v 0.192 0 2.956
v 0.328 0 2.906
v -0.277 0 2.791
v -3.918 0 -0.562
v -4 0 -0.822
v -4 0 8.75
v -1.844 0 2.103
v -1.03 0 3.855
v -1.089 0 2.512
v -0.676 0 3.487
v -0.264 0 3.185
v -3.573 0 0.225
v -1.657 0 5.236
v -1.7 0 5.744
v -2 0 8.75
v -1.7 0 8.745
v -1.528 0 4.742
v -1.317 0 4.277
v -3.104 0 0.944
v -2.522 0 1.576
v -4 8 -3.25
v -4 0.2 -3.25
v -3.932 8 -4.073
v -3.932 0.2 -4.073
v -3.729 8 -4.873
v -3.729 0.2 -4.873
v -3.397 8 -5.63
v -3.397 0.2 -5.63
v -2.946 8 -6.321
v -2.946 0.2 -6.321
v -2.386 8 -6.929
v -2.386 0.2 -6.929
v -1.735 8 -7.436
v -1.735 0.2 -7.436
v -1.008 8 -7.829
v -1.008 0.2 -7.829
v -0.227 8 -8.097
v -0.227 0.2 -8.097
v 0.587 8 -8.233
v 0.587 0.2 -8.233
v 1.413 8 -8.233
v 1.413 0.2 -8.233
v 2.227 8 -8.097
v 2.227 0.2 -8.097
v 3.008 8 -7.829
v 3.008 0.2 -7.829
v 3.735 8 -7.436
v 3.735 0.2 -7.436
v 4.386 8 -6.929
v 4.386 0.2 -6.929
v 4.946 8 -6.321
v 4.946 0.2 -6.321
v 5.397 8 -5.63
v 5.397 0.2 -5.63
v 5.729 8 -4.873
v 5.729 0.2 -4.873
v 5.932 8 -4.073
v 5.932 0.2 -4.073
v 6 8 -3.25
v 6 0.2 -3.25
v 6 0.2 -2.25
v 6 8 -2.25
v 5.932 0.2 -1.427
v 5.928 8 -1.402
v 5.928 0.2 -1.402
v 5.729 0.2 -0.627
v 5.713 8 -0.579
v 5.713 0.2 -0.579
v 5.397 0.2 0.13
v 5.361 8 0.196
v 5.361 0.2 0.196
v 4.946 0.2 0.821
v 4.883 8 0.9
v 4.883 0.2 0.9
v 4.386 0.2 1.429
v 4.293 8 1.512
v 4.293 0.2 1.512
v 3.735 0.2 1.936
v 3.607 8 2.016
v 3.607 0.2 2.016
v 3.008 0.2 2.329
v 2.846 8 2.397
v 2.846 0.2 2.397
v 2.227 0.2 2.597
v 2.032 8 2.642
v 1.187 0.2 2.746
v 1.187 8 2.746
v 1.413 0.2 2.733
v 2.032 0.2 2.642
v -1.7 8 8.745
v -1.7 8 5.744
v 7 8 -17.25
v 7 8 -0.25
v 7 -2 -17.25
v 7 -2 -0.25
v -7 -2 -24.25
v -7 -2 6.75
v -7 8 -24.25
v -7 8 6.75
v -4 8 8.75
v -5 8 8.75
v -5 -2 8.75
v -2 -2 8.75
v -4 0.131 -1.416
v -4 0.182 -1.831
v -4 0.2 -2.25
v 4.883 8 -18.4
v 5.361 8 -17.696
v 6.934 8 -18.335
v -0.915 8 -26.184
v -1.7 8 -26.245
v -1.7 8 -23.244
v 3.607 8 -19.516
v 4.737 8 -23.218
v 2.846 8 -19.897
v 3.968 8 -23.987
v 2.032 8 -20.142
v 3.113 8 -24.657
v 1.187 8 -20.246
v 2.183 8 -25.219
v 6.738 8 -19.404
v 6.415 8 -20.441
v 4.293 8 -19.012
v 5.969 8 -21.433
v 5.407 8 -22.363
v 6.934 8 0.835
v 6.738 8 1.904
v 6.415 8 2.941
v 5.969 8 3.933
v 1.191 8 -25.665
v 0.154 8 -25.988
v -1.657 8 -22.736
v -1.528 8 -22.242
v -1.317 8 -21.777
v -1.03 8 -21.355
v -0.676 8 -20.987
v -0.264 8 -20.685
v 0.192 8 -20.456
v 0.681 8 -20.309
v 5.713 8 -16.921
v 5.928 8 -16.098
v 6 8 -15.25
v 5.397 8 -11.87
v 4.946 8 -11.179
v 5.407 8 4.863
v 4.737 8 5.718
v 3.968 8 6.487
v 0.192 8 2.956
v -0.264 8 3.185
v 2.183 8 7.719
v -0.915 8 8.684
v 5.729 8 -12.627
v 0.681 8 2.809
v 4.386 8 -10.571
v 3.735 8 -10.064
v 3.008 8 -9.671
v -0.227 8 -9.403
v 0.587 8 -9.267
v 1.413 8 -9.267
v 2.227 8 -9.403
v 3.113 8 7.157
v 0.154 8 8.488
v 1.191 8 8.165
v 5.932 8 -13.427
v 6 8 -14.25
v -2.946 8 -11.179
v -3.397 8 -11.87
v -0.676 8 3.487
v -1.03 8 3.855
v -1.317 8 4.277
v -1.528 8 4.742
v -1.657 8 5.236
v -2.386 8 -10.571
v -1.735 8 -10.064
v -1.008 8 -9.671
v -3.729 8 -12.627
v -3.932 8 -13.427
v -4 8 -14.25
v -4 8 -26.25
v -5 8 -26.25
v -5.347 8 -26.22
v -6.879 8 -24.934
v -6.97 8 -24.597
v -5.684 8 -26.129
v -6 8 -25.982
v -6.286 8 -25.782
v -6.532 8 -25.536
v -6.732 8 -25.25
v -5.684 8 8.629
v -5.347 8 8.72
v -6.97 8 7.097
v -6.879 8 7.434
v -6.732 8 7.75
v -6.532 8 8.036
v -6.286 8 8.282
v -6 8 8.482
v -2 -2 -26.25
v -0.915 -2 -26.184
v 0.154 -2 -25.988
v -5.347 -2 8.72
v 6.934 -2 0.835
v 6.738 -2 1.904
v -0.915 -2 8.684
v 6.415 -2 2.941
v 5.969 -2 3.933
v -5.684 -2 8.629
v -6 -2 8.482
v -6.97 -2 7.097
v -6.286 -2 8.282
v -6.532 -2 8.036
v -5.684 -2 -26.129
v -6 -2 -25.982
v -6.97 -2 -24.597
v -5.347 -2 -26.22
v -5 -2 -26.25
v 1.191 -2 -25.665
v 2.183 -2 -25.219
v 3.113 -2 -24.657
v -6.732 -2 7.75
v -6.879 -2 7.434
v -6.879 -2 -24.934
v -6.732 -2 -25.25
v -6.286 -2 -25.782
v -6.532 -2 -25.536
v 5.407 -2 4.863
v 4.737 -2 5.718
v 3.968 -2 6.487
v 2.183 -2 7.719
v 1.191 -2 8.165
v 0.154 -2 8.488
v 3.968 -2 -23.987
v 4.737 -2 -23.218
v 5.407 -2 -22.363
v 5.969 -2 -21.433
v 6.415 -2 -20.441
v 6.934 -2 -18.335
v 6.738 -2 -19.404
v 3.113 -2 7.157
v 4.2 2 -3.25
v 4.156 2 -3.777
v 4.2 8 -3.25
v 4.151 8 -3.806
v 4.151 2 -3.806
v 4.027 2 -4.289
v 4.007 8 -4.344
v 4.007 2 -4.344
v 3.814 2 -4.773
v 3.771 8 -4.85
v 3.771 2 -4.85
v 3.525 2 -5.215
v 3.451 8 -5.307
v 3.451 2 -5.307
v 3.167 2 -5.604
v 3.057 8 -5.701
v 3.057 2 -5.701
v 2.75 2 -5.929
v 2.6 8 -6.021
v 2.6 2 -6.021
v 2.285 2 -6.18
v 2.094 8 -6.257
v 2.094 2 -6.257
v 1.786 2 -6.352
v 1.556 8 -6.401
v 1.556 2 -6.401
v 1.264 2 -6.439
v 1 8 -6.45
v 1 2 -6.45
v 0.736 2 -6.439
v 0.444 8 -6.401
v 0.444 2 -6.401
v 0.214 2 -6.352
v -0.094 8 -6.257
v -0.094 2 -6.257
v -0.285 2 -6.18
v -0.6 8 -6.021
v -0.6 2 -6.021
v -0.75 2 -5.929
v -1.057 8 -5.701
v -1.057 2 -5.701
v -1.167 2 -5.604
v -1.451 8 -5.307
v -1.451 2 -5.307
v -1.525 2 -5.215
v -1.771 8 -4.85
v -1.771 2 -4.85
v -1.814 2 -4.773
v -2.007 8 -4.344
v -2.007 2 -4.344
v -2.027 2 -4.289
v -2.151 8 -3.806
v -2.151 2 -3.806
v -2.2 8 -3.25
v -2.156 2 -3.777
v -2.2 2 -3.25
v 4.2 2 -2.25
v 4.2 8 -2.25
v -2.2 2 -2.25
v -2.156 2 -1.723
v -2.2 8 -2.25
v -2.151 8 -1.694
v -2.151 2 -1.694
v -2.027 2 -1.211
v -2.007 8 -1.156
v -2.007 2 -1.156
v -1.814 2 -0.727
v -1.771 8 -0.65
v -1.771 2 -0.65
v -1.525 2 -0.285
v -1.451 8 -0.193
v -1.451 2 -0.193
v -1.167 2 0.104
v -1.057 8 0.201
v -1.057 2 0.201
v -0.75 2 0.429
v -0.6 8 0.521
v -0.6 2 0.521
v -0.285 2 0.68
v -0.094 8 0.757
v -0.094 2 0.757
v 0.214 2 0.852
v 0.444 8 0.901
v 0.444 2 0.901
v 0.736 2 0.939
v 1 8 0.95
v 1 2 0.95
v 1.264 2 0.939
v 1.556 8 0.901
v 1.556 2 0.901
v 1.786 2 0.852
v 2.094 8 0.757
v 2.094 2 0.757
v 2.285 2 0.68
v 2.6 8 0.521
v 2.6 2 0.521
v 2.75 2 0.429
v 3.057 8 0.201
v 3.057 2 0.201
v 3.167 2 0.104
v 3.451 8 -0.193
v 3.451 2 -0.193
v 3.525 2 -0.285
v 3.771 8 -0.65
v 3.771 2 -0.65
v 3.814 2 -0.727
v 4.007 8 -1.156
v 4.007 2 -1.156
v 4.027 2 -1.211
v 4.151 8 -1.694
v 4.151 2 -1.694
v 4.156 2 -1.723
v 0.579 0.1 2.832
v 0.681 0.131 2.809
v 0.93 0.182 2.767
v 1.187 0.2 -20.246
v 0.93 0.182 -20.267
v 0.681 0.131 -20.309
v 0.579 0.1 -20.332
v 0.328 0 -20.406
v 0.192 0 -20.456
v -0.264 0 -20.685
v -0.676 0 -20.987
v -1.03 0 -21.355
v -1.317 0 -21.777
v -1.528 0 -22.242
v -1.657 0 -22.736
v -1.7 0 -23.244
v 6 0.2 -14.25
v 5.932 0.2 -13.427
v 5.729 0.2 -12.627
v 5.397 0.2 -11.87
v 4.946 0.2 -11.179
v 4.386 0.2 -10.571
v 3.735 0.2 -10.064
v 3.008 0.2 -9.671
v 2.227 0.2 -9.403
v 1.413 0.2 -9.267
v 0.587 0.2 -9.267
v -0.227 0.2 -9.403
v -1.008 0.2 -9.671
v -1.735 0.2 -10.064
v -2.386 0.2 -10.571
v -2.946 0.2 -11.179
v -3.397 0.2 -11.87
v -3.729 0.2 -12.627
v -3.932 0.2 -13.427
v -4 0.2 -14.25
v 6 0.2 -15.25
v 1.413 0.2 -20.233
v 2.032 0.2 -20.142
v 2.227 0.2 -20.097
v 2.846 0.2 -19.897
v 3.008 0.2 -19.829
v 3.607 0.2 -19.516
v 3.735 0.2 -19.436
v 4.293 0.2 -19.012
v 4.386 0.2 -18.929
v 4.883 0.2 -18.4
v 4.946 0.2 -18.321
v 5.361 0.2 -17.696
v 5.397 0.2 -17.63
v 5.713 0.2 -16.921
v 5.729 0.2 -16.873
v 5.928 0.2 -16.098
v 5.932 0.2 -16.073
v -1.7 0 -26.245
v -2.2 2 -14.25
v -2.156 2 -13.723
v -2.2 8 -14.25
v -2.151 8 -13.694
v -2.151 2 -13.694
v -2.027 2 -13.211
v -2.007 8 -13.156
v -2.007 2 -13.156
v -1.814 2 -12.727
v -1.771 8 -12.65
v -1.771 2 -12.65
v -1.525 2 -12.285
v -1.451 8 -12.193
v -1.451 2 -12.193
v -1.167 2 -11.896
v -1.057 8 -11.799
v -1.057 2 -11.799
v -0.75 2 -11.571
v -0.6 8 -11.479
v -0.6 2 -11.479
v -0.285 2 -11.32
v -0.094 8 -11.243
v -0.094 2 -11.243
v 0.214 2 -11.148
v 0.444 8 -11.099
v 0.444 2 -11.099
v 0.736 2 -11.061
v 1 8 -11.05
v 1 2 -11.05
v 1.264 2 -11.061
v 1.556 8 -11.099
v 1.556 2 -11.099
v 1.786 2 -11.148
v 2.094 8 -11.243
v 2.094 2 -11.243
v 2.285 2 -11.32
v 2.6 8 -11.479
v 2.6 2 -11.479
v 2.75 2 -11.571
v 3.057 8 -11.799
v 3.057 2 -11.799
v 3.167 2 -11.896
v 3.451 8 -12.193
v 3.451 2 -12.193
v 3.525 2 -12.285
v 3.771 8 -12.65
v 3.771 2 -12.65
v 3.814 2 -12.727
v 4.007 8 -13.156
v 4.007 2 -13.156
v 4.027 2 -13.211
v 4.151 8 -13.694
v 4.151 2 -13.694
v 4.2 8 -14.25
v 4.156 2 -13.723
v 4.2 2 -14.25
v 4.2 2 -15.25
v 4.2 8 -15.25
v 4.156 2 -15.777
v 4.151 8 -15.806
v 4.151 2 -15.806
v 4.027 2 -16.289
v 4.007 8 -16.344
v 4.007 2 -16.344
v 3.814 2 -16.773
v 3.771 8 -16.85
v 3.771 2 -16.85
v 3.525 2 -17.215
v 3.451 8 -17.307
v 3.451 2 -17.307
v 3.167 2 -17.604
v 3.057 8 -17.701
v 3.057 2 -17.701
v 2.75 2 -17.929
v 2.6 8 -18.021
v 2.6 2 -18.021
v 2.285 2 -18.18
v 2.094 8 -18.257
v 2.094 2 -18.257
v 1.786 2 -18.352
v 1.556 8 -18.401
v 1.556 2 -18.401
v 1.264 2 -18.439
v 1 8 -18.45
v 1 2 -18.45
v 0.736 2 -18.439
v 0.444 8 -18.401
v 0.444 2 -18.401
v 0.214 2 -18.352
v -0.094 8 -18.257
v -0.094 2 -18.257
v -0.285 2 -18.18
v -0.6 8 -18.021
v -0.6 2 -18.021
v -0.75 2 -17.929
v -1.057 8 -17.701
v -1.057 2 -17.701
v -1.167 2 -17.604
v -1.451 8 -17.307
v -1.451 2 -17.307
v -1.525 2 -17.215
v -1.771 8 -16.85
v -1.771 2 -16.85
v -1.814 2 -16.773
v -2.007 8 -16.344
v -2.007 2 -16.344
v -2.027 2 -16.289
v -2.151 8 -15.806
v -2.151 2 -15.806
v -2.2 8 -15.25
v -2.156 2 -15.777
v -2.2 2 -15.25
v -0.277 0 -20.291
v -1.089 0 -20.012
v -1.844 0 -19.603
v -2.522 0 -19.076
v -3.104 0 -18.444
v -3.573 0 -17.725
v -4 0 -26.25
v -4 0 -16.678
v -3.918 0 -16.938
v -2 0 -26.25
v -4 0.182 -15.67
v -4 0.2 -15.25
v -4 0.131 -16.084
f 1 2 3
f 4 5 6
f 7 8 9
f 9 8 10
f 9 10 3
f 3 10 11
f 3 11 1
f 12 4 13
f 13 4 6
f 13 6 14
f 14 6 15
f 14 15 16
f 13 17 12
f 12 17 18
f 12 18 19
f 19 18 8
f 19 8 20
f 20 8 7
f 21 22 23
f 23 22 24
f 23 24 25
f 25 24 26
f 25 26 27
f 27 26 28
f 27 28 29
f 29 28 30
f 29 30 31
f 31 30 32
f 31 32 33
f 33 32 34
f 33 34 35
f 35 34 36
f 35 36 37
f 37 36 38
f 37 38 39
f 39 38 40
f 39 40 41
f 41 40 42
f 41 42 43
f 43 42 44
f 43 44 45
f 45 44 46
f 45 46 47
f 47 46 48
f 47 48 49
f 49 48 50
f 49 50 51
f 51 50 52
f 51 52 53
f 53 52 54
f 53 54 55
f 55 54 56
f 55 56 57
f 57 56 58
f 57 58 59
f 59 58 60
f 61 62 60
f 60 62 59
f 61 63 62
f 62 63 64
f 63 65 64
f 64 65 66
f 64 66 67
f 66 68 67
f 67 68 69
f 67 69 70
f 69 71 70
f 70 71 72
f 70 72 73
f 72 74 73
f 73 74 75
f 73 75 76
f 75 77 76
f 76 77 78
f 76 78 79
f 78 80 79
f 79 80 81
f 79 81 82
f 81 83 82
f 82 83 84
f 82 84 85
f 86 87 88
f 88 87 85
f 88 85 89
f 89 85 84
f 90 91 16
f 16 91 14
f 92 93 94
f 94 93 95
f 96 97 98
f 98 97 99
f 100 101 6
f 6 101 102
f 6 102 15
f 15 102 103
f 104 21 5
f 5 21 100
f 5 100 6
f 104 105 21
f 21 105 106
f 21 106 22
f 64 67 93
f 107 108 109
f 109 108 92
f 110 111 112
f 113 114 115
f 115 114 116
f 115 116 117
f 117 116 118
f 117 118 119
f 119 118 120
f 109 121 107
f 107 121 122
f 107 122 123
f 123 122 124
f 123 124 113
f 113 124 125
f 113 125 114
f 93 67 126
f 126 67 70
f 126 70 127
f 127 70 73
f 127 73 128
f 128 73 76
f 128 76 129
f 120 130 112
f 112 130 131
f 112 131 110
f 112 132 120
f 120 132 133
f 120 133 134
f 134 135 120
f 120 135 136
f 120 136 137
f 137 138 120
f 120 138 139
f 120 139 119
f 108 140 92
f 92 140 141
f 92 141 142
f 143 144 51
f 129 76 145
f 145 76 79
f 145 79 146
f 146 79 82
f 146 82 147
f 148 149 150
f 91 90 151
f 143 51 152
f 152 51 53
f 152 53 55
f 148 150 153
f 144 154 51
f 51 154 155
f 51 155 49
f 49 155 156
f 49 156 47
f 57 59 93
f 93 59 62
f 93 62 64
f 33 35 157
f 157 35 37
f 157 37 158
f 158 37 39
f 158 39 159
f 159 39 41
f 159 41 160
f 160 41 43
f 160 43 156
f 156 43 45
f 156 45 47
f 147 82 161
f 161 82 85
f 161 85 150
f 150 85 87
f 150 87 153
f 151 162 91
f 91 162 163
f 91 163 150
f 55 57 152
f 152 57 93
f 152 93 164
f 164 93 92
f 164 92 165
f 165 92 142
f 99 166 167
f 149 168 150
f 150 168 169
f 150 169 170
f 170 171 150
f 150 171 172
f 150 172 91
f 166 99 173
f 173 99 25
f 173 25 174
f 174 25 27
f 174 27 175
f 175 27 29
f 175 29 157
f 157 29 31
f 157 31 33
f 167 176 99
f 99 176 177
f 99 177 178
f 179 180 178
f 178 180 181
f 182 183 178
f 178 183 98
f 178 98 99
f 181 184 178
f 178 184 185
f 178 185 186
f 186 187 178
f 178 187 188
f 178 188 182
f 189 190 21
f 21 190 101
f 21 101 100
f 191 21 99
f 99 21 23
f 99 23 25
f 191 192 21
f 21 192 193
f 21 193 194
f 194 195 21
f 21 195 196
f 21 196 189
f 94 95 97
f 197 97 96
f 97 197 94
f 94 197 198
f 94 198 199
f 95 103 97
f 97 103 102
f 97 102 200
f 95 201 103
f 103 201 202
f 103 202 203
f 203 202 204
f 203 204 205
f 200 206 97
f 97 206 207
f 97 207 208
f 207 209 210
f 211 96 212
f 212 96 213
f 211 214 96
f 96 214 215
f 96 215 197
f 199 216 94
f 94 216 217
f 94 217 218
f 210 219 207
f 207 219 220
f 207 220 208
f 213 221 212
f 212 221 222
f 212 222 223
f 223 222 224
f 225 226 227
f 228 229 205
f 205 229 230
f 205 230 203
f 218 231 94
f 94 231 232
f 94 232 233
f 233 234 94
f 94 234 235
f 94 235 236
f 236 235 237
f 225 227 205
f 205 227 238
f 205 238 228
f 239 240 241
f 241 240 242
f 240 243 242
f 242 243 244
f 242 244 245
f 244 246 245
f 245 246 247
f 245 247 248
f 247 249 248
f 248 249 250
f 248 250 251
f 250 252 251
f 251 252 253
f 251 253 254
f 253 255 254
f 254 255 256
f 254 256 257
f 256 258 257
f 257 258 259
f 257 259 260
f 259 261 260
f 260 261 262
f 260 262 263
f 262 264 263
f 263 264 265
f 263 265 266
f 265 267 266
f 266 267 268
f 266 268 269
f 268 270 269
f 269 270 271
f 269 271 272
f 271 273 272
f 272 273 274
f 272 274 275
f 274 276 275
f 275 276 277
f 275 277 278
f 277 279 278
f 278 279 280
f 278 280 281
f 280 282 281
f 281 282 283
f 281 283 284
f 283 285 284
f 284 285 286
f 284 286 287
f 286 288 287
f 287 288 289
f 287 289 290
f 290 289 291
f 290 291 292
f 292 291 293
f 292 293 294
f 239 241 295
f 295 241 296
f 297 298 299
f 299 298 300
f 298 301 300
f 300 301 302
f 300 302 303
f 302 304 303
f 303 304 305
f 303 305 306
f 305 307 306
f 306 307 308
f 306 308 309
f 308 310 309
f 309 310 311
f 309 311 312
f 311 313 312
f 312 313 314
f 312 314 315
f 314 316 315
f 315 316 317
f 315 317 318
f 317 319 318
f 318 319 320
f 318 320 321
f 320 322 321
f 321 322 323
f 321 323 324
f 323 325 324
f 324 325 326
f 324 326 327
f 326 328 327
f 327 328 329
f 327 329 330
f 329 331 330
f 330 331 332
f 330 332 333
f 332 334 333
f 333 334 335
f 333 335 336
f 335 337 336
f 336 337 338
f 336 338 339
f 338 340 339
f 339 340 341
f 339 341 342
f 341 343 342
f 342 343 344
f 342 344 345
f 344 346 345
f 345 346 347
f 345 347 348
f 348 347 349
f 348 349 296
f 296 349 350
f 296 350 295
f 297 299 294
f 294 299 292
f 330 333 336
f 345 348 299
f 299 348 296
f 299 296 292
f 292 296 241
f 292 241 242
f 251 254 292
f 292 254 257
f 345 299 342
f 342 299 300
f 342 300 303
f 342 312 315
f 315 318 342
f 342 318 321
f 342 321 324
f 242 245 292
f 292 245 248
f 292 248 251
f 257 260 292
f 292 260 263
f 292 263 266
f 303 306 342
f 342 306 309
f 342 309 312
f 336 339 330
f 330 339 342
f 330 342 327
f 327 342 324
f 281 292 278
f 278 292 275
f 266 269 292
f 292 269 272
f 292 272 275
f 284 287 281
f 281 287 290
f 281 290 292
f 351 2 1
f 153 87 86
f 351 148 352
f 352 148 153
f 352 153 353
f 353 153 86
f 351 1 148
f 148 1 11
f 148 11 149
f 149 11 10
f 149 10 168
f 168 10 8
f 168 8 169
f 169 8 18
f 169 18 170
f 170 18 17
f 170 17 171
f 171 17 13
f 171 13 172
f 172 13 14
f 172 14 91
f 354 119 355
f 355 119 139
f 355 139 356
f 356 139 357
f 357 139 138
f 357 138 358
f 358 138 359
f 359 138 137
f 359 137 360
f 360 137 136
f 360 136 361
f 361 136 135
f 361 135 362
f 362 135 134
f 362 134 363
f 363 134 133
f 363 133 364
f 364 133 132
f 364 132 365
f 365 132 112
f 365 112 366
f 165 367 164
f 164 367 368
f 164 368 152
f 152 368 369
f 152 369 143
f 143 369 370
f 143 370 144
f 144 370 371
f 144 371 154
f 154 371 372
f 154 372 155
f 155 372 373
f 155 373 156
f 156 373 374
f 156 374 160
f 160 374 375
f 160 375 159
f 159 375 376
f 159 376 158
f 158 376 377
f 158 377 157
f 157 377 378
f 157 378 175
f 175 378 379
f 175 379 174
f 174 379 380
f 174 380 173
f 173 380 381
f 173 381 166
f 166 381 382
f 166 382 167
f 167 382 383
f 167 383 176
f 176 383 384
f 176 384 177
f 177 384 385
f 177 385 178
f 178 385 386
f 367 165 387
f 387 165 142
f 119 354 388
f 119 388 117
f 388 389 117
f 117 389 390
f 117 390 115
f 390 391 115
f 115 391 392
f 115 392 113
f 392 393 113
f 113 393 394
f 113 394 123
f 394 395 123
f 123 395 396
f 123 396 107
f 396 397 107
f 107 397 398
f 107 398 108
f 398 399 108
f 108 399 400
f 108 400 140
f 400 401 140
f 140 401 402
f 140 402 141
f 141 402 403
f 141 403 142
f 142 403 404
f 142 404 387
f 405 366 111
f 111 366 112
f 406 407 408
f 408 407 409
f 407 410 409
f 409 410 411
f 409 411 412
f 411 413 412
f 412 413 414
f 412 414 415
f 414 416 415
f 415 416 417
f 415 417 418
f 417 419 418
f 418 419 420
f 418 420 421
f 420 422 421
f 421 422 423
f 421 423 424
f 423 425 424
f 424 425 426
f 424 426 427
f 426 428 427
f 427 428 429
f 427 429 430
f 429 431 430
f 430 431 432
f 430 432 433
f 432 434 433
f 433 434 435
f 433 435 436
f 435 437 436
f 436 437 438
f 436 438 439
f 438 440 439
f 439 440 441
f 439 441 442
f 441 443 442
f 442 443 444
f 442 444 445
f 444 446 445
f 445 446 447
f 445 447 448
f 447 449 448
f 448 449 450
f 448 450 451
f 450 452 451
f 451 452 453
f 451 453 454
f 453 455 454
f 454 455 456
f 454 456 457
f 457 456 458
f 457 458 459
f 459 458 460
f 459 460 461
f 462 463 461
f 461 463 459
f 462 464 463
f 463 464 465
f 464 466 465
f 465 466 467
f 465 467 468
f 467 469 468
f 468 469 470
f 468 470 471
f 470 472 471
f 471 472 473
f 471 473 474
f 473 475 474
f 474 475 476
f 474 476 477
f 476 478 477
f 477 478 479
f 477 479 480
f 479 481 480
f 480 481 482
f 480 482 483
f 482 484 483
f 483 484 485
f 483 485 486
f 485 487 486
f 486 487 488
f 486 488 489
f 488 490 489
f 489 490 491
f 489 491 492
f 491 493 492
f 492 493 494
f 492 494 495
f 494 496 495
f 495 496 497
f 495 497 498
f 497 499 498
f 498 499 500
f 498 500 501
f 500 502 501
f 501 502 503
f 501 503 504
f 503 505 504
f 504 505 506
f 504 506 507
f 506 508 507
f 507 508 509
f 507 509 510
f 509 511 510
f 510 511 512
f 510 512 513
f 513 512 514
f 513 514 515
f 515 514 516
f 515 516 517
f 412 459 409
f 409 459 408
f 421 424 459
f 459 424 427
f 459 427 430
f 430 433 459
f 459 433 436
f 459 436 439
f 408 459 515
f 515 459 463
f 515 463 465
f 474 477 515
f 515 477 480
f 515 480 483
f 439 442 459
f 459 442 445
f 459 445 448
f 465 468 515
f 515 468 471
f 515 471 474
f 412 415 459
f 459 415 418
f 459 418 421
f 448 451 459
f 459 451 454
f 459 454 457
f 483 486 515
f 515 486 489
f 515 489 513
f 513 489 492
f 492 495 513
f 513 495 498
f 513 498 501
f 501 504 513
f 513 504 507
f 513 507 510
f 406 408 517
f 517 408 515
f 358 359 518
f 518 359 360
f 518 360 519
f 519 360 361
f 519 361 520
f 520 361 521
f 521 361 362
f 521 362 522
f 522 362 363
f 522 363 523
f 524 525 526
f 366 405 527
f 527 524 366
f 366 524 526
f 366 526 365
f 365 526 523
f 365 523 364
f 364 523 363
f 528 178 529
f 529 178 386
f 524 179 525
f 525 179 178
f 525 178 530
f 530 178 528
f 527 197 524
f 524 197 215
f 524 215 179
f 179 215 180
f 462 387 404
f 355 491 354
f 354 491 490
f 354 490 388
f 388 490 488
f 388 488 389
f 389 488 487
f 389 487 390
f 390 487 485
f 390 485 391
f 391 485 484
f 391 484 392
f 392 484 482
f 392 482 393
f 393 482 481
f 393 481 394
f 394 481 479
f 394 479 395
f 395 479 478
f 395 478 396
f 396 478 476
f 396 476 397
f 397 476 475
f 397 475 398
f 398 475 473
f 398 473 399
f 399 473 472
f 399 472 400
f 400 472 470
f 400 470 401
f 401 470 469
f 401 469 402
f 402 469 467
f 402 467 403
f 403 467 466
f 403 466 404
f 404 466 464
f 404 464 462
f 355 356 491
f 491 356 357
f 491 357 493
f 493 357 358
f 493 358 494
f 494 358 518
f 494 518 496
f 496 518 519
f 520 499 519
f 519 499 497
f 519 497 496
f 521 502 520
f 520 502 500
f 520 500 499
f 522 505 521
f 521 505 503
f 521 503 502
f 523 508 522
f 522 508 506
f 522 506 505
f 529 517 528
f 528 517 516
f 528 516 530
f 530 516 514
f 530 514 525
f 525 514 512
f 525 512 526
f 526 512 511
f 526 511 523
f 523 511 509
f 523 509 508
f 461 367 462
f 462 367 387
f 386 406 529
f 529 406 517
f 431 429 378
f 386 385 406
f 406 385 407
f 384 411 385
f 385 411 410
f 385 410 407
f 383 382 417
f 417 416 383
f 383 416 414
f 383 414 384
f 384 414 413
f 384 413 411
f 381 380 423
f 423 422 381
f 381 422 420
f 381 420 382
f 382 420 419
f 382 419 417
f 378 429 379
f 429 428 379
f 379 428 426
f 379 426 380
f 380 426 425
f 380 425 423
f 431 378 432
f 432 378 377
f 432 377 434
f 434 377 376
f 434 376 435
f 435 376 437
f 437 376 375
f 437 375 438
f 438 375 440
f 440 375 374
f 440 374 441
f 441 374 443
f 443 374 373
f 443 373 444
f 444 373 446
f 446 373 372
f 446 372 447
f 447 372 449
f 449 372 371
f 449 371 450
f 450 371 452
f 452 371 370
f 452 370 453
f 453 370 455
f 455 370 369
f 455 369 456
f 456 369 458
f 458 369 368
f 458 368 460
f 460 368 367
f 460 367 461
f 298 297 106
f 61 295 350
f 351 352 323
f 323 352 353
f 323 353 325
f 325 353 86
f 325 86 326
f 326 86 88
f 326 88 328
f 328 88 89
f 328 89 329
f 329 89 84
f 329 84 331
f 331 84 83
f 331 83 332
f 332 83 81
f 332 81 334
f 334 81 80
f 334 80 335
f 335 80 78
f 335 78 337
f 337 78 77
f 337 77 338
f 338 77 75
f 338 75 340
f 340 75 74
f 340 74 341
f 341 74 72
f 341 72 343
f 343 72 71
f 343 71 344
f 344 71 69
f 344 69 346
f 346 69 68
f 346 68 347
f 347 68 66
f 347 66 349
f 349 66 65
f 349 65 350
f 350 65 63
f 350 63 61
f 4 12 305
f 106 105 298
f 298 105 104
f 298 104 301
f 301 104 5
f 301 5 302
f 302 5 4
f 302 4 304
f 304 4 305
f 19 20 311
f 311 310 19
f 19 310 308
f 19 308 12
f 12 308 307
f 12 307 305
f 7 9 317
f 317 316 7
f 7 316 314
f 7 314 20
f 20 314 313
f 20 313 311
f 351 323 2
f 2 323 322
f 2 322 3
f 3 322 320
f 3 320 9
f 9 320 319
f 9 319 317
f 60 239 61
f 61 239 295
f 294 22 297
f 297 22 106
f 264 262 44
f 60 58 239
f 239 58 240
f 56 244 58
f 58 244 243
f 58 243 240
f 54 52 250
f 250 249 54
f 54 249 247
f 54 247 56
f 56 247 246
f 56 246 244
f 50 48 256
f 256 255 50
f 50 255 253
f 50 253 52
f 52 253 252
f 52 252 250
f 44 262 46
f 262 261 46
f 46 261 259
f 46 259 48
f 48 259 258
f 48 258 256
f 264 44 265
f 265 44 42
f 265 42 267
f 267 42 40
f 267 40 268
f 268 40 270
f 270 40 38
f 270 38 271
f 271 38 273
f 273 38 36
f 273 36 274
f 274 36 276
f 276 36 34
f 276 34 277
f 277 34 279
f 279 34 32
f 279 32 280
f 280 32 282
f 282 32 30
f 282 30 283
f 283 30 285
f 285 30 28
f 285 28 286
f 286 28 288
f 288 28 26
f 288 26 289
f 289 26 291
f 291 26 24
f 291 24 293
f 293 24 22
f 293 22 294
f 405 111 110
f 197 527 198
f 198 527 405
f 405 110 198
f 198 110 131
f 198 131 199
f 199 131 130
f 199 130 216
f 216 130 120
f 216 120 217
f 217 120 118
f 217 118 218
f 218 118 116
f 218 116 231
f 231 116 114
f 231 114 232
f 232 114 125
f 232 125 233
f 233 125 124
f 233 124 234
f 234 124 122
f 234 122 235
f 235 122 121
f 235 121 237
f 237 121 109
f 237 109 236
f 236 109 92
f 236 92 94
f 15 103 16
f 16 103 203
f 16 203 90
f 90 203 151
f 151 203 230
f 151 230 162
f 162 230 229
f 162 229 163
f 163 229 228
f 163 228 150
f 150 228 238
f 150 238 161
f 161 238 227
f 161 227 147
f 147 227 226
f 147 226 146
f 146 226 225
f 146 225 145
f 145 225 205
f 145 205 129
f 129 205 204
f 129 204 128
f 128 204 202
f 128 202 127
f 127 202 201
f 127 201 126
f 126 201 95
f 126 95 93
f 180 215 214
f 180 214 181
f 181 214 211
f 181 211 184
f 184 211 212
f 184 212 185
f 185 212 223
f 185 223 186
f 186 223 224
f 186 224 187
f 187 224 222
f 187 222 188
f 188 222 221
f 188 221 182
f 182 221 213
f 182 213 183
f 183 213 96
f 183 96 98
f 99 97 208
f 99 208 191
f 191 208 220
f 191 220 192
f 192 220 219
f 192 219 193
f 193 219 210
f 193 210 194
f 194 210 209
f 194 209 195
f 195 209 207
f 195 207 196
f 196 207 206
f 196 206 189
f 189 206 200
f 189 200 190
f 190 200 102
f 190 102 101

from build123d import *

# Parameters (mm, degrees)
BOSS_EXTRUDE3_DEPTH   = 8
BOSS_EXTRUDE3_2_DEPTH = 8
SKETCH4_W             = 14
SKETCH4_H             = 17.5
BOSS_EXTRUDE4_DEPTH   = 2
FILLET3_R             = 3
MIRROR2_START         = -2
MIRROR2_DEPTH         = 10
MIRROR2_2_DEPTH       = 2
CHAMFER1_SIZE         = 2
FILLET4_R             = 9
FILLET5_R             = 2


# Read off the part's stored shape, not the designer's step: Mirror2
with BuildPart() as part:
    # Sketch3 → Boss-Extrude3 (new body)
    with BuildSketch(Plane(origin=(0, 0, 0), x_dir=(1, 0, 0), z_dir=(0, 1, 0))):
        with BuildLine():
            Line((-1.7, -8.75), (7, -8.75))
            Line((7, -8.75), (7, 8.75))
            Line((7, 8.75), (-7, 8.75))
            Line((-7, 8.75), (-7, -8.75))
            Line((-7, -8.75), (-4, -8.75))
            Line((-4, -8.75), (-4, 3.25))
            ThreePointArc((-4, 3.25), (1, 8.25), (6, 3.25))
            Line((6, 3.25), (6, 2.25))
            ThreePointArc((6, 2.25), (3.397915762, -2.137482194), (-1.7, -1.958325083))
            Line((-1.7, -1.958325083), (-1.7, -8.75))
        make_face()
    extrude(amount=BOSS_EXTRUDE3_DEPTH)



with BuildPart() as body_2:
    # Sketch3 → Boss-Extrude3 2 (new body)
    with BuildSketch(Plane(origin=(0, 0, 0), x_dir=(1, 0, 0), z_dir=(0, 1, 0))):
        with BuildLine():
            ThreePointArc((-2.2, 2.25), (1, -0.95), (4.2, 2.25))
            Line((4.2, 2.25), (4.2, 3.25))
            ThreePointArc((4.2, 3.25), (1, 6.45), (-2.2, 3.25))
            Line((-2.2, 3.25), (-2.2, 2.25))
        make_face()
    extrude(amount=BOSS_EXTRUDE3_2_DEPTH)


with BuildPart() as part_1:
    add(part.part)

    add(body_2.part)  # Boss-Extrude4 merges body 2
    # Sketch4 → Boss-Extrude4 (add)
    with BuildSketch(Plane(origin=(0, 0, 0), x_dir=(-1, 0, 0), z_dir=(0, -1, 0))):
        Rectangle(SKETCH4_W, SKETCH4_H)
    extrude(amount=BOSS_EXTRUDE4_DEPTH)

    # Fillet3
    fillet3_edges = [part_1.edges().sort_by_distance(p)[0] for p in [
        (-1.7, 4, 1.958325083),
    ]]
    fillet(fillet3_edges, radius=FILLET3_R)

    # Mirror2 outline → Mirror2 (add)
    with BuildSketch(Plane(origin=(0, 0, 0), x_dir=(1, 0, 0), z_dir=(0, 1, 0)).offset(MIRROR2_START)):
        with BuildLine():
            ThreePointArc((1.1875, 20.246483138), (4.601215073, 18.718609231), (6, 15.25))
            Line((6, 15.25), (6, 14.25))
            ThreePointArc((6, 14.25), (1, 9.25), (-4, 14.25))
            Line((-4, 14.25), (-4, 26.25))
            Line((-4, 26.25), (-7, 26.25))
            Line((-7, 26.25), (-7, 8.75))
            Line((-7, 8.75), (7, 8.75))
            Line((7, 8.75), (7, 26.25))
            Line((7, 26.25), (-1.7, 26.25))
            Line((-1.7, 26.25), (-1.7, 23.244373021))
            ThreePointArc((-1.7, 23.244373021), (-0.860729044, 21.163207482), (1.1875, 20.246483138))
        make_face()
        with BuildLine():
            ThreePointArc((-2.2, 14.25), (1, 11.05), (4.2, 14.25))
            Line((4.2, 14.25), (4.2, 15.25))
            ThreePointArc((4.2, 15.25), (1, 18.45), (-2.2, 15.25))
            Line((-2.2, 15.25), (-2.2, 14.25))
        make_face()
    extrude(amount=MIRROR2_DEPTH)

    # Mirror2 2 outline → Mirror2 2 (add)
    with BuildSketch(Plane(origin=(0, 0, 0), x_dir=(1, 0, 0), z_dir=(0, 1, 0)).offset(MIRROR2_START)):
        with BuildLine():
            Line((6, 14.25), (6, 15.25))
            ThreePointArc((6, 15.25), (4.601215073, 18.718609231), (1.1875, 20.246483138))
            ThreePointArc((1.1875, 20.246483138), (-0.860729044, 21.163207482), (-1.7, 23.244373021))
            Line((-1.7, 23.244373021), (-1.7, 26.25))
            Line((-1.7, 26.25), (-4, 26.25))
            Line((-4, 26.25), (-4, 14.25))
            ThreePointArc((-4, 14.25), (1, 9.25), (6, 14.25))
        make_face()
        with BuildLine():
            Line((4.2, 15.25), (4.2, 14.25))
            ThreePointArc((4.2, 14.25), (1, 11.05), (-2.2, 14.25))
            Line((-2.2, 14.25), (-2.2, 15.25))
            ThreePointArc((-2.2, 15.25), (1, 18.45), (4.2, 15.25))
        make_face(mode=Mode.SUBTRACT)
    extrude(amount=MIRROR2_2_DEPTH)

    # Chamfer1
    # the kernel refuses this chamfer: 2 mm, written as the material it adds along each edge
    with BuildSketch(Plane(origin=(1, 0, -14.25), x_dir=(1, 0, 0), z_dir=(0, 0, -1))) as chamfer1_piece_1:
        Polygon((3.2 + CHAMFER1_SIZE, 0), (3.2, -CHAMFER1_SIZE), (3.2, 0), align=None)
    revolve(axis=Axis((1, 0, -14.25), (0, -1, 0)), revolution_arc=180)
    with BuildSketch(Plane(origin=(-2.2, 0, -14.25), x_dir=(-0.9996219169112968, -0.027495876610586365, 0), z_dir=(0, 0, -1)), Plane(origin=(4.2, 0, -15.25), x_dir=(0.9996219169112968, -0.027495876610586365, 0), z_dir=(0, 0, 1))) as chamfer1_piece_2:
        Polygon((CHAMFER1_SIZE * 0.999621916911, CHAMFER1_SIZE * 0.0274958766106), (-CHAMFER1_SIZE * 0.0274958766106, CHAMFER1_SIZE * 0.999621916911), (0, 0), align=None)
    extrude(amount=1)
    with BuildSketch(Plane(origin=(1, 0, -15.25), x_dir=(-1, 0, 0), z_dir=(0, 0, 1))) as chamfer1_piece_3:
        Polygon((3.2 + CHAMFER1_SIZE, 0), (3.2, -CHAMFER1_SIZE), (3.2, 0), align=None)
    revolve(axis=Axis((1, 0, -15.25), (0, -1, 0)), revolution_arc=180)
    with BuildSketch(Plane(origin=(1, 0, -3.25), x_dir=(1, 0, 0), z_dir=(0, 0, 1))) as chamfer1_piece_4:
        Polygon((3.2 + CHAMFER1_SIZE, 0), (3.2, CHAMFER1_SIZE), (3.2, 0), align=None)
    revolve(axis=Axis((1, 0, -3.25), (0, 1, 0)), revolution_arc=180)
    with BuildSketch(Plane(origin=(-2.2, 0, -3.25), x_dir=(-0.9996219169112968, -0.027495876610586365, 0), z_dir=(0, 0, 1)), Plane(origin=(4.2, 0, -2.25), x_dir=(0.9996219169112968, -0.027495876610586365, 0), z_dir=(0, 0, -1))) as chamfer1_piece_5:
        Polygon((CHAMFER1_SIZE * 0.999621916911, -CHAMFER1_SIZE * 0.0274958766106), (-CHAMFER1_SIZE * 0.0274958766106, -CHAMFER1_SIZE * 0.999621916911), (0, 0), align=None)
    extrude(amount=1)
    with BuildSketch(Plane(origin=(1, 0, -2.25), x_dir=(-1, 0, 0), z_dir=(0, 0, -1))) as chamfer1_piece_6:
        Polygon((3.2 + CHAMFER1_SIZE, 0), (3.2, CHAMFER1_SIZE), (3.2, 0), align=None)
    revolve(axis=Axis((1, 0, -2.25), (0, 1, 0)), revolution_arc=180)

    # Fillet4
    fillet4_edges = [part_1.edges().sort_by_distance(p)[0] for p in [
        (7, 3, 8.75),
        (7, 3, -26.25),
    ]]
    fillet(fillet4_edges, radius=FILLET4_R)

    # Fillet5
    fillet5_edges = [part_1.edges().sort_by_distance(p)[0] for p in [
        (-7, 3, 8.75),
        (-7, 3, -26.25),
    ]]
    fillet(fillet5_edges, radius=FILLET5_R)


solid = part_1.part
